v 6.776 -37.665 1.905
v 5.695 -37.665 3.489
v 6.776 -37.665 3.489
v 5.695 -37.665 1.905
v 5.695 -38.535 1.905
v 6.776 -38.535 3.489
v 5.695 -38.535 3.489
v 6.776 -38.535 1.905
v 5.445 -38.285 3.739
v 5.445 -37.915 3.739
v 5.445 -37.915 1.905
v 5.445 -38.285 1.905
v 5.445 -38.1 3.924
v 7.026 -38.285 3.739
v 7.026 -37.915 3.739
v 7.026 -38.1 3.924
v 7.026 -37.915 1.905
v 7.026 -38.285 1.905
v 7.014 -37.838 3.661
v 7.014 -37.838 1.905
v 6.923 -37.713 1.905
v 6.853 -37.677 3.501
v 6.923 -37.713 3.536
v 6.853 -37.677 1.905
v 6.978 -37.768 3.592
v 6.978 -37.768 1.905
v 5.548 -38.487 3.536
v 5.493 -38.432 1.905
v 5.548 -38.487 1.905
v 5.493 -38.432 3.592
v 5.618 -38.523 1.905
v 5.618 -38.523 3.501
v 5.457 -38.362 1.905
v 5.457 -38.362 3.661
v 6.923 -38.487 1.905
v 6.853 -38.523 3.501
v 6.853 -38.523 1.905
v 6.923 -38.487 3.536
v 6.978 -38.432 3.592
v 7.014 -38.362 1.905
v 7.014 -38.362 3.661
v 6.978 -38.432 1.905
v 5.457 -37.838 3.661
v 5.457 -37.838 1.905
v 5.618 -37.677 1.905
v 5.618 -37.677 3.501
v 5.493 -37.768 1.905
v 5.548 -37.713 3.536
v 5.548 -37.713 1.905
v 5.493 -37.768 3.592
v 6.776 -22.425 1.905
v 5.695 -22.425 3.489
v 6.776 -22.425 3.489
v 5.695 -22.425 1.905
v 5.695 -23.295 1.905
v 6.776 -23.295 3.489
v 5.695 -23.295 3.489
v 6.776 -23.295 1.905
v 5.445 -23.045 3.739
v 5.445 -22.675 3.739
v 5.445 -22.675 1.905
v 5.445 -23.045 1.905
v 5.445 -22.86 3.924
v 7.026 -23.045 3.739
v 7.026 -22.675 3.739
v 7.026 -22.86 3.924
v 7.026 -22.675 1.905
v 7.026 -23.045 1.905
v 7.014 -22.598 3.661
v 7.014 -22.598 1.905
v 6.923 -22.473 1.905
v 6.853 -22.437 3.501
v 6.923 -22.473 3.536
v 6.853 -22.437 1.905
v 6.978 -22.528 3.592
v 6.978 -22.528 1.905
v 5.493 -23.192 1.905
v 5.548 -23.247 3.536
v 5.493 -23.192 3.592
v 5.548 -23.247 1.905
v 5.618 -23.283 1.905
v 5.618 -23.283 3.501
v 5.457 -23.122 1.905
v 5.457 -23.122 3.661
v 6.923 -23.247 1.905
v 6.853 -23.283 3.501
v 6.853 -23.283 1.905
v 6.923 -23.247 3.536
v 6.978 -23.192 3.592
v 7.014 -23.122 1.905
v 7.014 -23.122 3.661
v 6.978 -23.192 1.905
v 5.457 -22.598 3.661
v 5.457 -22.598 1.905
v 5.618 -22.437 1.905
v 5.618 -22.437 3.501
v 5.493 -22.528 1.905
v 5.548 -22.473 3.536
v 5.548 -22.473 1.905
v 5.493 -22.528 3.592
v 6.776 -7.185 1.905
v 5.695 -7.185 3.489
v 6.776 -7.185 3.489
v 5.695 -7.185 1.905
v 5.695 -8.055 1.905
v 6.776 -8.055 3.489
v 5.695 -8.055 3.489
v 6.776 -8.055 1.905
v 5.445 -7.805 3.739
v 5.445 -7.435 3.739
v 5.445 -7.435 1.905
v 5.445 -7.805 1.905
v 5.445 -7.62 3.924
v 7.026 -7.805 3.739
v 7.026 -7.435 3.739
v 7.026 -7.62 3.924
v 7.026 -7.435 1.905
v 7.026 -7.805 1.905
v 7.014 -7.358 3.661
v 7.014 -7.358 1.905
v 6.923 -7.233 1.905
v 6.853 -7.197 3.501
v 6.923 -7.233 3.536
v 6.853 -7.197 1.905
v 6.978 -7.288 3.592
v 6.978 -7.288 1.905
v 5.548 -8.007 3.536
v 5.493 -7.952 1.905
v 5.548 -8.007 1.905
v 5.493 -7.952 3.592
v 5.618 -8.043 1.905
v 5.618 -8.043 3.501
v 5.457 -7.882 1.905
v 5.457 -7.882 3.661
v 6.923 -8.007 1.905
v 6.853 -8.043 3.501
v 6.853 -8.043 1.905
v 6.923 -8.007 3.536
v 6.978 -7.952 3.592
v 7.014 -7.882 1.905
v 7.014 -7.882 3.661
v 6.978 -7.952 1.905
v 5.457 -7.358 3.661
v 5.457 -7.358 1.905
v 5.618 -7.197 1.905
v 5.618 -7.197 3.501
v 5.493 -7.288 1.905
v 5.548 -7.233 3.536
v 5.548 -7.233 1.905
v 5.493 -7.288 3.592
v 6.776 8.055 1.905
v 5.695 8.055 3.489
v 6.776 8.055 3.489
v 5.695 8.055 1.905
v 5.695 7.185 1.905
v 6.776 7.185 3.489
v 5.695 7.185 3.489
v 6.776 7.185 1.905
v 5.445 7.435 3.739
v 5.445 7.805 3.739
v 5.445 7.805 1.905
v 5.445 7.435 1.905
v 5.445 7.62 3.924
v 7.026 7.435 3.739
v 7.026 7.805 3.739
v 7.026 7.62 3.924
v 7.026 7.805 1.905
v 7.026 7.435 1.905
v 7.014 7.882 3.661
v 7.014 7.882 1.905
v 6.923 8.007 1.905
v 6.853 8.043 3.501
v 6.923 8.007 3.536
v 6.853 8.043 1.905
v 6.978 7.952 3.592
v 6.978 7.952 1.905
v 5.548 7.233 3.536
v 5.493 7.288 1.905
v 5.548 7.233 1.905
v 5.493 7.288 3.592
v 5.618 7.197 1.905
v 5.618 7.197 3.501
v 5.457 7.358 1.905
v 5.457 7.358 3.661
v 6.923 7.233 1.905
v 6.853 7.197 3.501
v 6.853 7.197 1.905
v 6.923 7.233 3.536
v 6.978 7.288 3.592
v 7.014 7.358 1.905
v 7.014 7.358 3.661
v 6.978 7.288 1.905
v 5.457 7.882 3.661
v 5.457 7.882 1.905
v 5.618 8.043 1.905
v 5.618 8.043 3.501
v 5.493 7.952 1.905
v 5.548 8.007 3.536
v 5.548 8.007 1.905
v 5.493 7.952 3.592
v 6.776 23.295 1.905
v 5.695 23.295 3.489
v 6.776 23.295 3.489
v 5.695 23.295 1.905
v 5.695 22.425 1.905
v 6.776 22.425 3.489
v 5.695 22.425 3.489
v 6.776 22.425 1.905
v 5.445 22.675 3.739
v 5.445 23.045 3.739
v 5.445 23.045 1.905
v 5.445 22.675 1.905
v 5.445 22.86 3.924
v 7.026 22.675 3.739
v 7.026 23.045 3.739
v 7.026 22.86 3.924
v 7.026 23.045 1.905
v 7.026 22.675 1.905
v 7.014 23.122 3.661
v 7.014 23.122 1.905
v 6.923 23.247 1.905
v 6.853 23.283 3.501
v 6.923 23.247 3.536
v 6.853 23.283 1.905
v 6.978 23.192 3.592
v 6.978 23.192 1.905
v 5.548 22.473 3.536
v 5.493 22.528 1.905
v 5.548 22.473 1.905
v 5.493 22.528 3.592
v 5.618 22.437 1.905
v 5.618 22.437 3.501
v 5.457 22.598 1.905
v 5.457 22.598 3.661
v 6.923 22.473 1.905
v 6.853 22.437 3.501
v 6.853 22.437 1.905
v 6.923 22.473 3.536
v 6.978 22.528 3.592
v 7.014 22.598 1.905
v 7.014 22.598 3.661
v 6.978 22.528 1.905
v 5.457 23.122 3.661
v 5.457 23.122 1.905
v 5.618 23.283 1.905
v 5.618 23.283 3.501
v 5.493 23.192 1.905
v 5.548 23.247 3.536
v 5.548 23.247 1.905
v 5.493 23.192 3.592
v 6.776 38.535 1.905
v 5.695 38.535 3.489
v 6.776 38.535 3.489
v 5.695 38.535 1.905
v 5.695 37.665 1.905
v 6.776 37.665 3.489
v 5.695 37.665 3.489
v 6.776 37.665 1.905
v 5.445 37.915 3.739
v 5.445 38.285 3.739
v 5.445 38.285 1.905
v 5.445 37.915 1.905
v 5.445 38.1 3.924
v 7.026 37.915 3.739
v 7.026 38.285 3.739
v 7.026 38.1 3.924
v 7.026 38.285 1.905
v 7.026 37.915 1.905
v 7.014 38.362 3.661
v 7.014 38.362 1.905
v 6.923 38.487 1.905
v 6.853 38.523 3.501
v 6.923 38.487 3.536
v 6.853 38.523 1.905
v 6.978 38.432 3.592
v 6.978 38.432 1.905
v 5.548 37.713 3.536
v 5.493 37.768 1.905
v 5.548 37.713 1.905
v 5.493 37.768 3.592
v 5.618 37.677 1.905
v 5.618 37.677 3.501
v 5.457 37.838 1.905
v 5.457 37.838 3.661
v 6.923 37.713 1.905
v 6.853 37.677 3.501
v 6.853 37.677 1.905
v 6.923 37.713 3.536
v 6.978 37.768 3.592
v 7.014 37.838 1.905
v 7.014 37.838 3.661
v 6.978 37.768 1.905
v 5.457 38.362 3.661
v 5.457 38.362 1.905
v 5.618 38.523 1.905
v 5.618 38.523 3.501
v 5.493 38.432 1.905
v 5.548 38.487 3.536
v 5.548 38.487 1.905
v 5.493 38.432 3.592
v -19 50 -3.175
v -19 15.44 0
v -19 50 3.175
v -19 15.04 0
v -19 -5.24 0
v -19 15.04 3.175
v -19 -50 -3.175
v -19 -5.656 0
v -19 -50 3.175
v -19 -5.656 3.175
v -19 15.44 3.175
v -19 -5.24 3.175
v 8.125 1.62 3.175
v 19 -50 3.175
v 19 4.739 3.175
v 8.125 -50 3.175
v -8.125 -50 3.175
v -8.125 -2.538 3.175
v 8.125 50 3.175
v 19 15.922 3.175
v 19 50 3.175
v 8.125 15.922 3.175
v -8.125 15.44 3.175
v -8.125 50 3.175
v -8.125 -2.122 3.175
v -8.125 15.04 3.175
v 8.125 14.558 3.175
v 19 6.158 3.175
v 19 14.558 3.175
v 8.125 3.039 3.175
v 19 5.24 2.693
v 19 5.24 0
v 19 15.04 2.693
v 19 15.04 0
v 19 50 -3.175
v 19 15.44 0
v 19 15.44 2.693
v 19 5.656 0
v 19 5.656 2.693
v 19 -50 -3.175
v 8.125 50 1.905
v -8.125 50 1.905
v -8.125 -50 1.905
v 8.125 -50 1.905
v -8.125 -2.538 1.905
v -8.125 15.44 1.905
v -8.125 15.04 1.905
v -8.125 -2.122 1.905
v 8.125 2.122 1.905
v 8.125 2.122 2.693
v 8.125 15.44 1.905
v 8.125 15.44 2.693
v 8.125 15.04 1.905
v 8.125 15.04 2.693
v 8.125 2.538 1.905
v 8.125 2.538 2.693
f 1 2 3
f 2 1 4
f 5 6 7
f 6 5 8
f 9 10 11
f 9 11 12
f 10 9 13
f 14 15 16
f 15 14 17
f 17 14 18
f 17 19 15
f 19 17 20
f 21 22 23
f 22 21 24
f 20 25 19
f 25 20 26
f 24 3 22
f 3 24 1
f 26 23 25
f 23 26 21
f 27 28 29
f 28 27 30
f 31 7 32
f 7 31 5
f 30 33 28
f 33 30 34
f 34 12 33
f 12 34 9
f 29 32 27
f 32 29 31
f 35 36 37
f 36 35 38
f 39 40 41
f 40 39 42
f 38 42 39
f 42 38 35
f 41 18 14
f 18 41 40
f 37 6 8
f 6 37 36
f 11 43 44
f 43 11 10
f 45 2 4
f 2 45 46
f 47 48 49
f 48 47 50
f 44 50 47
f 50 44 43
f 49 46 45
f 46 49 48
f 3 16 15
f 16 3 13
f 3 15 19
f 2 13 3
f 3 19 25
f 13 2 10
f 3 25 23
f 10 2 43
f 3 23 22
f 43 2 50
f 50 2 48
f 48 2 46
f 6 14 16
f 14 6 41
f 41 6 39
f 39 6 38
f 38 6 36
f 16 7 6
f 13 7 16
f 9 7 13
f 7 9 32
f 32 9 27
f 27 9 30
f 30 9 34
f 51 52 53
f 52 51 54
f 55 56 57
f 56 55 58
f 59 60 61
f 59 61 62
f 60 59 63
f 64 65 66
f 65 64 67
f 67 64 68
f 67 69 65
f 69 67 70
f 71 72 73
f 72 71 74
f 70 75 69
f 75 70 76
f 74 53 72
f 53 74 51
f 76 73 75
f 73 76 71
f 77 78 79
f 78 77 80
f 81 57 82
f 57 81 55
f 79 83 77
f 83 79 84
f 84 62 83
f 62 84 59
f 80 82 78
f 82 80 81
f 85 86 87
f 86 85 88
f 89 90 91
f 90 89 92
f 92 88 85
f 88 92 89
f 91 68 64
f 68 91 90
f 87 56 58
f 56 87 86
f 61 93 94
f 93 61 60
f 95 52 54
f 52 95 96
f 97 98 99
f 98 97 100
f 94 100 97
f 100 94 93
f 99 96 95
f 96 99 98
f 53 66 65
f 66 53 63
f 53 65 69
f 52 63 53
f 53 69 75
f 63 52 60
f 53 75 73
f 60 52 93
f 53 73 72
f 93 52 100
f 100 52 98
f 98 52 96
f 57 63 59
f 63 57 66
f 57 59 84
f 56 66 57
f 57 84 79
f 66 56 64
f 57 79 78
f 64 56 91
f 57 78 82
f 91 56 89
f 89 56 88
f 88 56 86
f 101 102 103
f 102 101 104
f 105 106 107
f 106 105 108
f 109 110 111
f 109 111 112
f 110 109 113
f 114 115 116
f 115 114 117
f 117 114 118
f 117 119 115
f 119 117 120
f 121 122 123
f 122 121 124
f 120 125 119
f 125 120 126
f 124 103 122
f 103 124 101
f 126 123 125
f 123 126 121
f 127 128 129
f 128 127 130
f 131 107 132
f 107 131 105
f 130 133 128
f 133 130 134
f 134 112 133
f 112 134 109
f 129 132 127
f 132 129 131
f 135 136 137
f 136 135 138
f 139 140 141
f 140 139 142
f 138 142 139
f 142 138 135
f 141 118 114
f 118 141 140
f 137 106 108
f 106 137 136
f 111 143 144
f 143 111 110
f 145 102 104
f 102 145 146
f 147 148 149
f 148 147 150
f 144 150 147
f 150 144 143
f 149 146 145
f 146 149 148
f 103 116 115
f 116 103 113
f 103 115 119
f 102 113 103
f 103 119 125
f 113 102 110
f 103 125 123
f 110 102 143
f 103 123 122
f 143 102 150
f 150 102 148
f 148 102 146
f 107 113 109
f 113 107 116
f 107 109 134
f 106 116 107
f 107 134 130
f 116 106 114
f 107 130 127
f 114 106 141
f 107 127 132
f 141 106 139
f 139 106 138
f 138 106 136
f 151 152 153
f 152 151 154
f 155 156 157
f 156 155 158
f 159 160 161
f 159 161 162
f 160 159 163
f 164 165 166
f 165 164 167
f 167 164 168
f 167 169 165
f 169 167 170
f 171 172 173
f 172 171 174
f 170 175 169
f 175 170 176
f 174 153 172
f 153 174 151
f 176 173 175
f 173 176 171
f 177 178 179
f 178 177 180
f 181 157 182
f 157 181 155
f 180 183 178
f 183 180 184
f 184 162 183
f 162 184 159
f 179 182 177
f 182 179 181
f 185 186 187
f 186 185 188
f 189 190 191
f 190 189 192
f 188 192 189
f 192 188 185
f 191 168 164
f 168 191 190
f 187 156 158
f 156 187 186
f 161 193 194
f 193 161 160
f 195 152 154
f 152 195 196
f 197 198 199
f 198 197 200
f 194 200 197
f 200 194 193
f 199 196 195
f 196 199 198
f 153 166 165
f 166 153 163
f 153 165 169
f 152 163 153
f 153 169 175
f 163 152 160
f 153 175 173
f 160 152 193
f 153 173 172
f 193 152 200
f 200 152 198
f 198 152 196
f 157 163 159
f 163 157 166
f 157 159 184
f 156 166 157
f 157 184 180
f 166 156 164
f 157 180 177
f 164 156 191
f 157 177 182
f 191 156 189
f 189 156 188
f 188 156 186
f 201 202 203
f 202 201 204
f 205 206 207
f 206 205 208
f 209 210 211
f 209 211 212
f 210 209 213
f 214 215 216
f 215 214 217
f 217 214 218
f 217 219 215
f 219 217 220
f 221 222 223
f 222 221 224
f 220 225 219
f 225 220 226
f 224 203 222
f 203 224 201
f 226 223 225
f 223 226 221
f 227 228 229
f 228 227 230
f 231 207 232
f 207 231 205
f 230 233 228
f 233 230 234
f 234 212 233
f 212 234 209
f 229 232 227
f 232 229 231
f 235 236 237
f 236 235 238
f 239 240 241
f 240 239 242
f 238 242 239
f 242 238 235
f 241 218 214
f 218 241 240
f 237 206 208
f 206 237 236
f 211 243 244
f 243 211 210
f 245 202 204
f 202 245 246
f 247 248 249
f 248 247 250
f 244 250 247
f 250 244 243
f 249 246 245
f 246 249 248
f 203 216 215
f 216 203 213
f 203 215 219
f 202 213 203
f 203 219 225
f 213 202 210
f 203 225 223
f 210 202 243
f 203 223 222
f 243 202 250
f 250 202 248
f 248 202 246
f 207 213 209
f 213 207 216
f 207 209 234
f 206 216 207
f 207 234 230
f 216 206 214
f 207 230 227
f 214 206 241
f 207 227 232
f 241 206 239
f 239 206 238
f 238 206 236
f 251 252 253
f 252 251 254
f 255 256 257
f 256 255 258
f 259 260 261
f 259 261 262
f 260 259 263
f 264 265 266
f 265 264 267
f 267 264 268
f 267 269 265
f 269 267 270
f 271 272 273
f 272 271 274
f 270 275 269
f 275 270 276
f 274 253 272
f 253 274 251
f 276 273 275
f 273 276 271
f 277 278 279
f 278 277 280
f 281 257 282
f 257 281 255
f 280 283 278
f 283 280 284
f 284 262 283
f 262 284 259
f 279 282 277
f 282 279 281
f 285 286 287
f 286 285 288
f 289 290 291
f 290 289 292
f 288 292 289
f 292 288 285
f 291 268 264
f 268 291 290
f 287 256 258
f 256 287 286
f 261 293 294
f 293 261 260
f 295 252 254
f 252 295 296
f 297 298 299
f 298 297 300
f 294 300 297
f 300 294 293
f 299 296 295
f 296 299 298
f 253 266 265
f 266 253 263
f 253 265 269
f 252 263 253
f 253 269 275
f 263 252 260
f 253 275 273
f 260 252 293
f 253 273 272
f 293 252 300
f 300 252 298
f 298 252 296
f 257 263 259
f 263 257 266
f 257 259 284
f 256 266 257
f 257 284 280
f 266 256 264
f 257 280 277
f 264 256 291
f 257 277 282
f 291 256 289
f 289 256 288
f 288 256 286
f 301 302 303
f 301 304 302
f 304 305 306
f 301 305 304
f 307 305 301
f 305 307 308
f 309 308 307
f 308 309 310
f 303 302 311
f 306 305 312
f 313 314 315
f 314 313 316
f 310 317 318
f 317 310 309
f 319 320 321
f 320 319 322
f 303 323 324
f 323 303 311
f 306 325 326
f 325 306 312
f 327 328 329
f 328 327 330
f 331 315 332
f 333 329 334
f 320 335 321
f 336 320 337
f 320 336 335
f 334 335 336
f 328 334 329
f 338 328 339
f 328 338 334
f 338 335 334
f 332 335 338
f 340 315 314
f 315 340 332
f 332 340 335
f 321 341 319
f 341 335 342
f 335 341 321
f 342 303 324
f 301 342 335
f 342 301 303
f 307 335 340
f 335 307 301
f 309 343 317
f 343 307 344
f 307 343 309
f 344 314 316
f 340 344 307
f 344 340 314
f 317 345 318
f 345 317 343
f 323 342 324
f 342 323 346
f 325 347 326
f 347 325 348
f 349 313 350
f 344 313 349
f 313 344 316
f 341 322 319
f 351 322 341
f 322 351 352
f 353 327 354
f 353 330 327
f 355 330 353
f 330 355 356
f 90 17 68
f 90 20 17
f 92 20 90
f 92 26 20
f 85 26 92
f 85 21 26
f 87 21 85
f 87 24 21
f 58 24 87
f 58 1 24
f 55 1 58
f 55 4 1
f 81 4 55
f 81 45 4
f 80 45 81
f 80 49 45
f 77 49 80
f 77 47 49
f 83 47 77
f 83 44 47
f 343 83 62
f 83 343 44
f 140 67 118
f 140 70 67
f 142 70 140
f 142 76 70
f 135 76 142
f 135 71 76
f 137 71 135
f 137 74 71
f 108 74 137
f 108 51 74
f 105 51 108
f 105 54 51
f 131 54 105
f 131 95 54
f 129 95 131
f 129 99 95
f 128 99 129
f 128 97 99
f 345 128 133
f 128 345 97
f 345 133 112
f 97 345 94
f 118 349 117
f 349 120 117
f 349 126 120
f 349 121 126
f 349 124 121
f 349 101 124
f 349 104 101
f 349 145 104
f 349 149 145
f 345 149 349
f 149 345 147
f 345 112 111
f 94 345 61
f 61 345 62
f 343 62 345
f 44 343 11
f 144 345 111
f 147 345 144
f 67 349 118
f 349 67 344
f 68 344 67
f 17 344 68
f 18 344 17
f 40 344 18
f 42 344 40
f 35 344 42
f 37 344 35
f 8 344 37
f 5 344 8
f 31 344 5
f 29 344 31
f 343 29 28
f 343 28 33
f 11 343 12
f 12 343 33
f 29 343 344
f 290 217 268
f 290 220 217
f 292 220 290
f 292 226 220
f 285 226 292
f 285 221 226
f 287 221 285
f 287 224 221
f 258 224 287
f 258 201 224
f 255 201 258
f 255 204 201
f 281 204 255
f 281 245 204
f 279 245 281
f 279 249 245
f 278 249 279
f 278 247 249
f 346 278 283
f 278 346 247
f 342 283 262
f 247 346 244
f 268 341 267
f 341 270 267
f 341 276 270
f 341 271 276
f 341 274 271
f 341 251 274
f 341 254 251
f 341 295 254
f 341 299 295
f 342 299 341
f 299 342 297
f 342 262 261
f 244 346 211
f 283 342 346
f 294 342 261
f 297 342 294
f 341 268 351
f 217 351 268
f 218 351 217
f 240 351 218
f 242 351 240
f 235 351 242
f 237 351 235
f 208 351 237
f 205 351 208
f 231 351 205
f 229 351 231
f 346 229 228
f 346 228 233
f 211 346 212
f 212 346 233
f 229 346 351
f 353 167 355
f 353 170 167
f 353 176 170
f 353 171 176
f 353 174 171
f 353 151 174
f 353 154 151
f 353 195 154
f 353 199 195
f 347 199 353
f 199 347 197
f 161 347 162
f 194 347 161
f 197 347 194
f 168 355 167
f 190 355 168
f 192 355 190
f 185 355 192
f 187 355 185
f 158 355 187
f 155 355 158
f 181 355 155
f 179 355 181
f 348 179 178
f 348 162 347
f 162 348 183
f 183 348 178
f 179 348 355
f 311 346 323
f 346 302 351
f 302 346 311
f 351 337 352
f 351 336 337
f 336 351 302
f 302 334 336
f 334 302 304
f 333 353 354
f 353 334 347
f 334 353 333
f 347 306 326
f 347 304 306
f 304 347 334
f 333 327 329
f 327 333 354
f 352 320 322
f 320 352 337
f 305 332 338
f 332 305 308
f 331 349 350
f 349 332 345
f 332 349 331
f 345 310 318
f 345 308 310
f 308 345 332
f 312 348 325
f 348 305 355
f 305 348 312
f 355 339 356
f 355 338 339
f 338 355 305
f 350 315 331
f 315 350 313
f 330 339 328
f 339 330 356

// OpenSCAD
IN=25.4;
FRAME_H = 7.49;
FRAME_W = 10.26;
FRAME_OUTER = 16 - FRAME_W;

PERF_OFFSET = (1.829 / 2) + .85;
SPACING_LONG = 7.62;

module 16mm_plate () {

    /*difference () {
        cube([20, 40, 2], center = true);
        //translate([10.3, 0, 1.3]) rotate([0, 30, 0]) cube([8, 200, 4], center = true);
        //image void
        translate([-((20 - FRAME_W) / 2) + (FRAME_OUTER / 2), 0, 0]) cube([FRAME_W, FRAME_H, 2 + 1], center = true);
        //sound void
        translate([-((20 - 16) / 2) + (16 / 2) - (FRAME_OUTER / 4), 7.57, 0]) cube([(16 - FRAME_W) / 2, FRAME_H, 2 + 1], center = true);
    }*/
	translate([0, 0, 1.3 - .5]) {
		for (i = [-5 : 5]) {
            if (abs(i % 2) == 1) {
                registration_pin(8 - PERF_OFFSET, i * SPACING_LONG);
            }
		}
	}
}

module rounded_cube (cube_arr = [1, 1, 1], d = 0, center = false) {
    $fn = 20;
  
	off_x = 0;
	off_y = 0;
	r = d/2;
	union () {
		cube([cube_arr[0] - d, cube_arr[1], cube_arr[2]], center = center);
		cube([cube_arr[0], cube_arr[1] - d, cube_arr[2]], center = center);
		translate ([1 * (cube_arr[0] / 2) - r , 1 * (cube_arr[1] / 2)- r, 0]) cylinder(r = r, h = cube_arr[2], center = center);
		translate ([-1 * (cube_arr[0] / 2) + r, -1 * (cube_arr[1] / 2) + r, 0]) cylinder(r = r, h = cube_arr[2], center = center);
		translate ([1 * (cube_arr[0] / 2) - r, -1 * (cube_arr[1] / 2) + r, 0]) cylinder(r = r, h = cube_arr[2], center = center);
		translate ([-1 * (cube_arr[0] / 2) + r, 1 * (cube_arr[1] / 2)- r, 0]) cylinder(r = r, h = cube_arr[2], center = center);
	}
}

module registration_pin(x, y) {
    
	z = 2.5;
	w = 1.27 - .4;
	h = 1.9812 - .4;
	translate([x, y, 0]) {
        difference () {
            rounded_cube([h, w, z], d = .5, center = true);
            translate([0, w/1.6, z - (w * 1.5)]) rotate([45, 0, 0]) cube([h + 1, w, w], center = true);
            translate([0, -w/1.6, z - (w * 1.5)]) rotate([-45, 0, 0]) cube([h + 1, w, w], center = true);
        }
    }
}

X = 38;
Y = 100;
Z = 6;

translate([0, 0, 2]) 16mm_plate();
difference() {
	cube([X, Y, (1/4)*IN], center = true);
    translate([0, 0, (1/5)*IN]) cube([16.25, Y + 1, (1/4)*IN], center = true);
    translate([0, SPACING_LONG * 2, (1/8)*IN]) {
        cube([(2 * IN) + 1, .4, (1/4)*IN], center = true);
    }
    translate([X / 2, SPACING_LONG * 2, (Z / 2) + .2 ]) {
        rotate([45, 0, 0]) cube([(2 * IN) + 1, 1, 1], center = true);
    }
    translate([0, 0, (1/8)*IN]) rotate([0, 0, 16]) {
        cube([X * 2, .4, (1/4)*IN], center = true);
    }
    translate([0, 0, (Z / 2) + .2]) rotate([0, 0, 16]) {
        translate([X, 0, 0]) rotate([45, 0, 0]) cube([X * 2, 1, 1], center = true);
    }
}
